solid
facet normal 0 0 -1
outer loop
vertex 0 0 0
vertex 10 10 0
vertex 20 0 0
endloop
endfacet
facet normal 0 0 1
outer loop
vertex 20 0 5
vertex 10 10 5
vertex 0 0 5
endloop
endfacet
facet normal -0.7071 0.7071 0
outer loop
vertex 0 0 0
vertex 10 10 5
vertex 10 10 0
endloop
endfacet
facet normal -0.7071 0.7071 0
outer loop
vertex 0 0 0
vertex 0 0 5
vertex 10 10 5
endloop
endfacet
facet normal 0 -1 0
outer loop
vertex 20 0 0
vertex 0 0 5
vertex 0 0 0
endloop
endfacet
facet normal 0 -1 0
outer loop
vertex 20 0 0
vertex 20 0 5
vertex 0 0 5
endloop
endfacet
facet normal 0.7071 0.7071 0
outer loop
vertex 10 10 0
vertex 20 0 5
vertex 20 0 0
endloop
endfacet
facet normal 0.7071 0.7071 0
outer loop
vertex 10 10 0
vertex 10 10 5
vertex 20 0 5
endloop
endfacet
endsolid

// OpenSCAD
module triangular_prism(width, height, depth) {
  linear_extrude(height = depth) {
    polygon(points=[[0,0], [width/2, height], [width,0]]);
  }
}

// Example usage:
width = 20;
height = 10;
depth = 5;

triangular_prism(width, height, depth);
